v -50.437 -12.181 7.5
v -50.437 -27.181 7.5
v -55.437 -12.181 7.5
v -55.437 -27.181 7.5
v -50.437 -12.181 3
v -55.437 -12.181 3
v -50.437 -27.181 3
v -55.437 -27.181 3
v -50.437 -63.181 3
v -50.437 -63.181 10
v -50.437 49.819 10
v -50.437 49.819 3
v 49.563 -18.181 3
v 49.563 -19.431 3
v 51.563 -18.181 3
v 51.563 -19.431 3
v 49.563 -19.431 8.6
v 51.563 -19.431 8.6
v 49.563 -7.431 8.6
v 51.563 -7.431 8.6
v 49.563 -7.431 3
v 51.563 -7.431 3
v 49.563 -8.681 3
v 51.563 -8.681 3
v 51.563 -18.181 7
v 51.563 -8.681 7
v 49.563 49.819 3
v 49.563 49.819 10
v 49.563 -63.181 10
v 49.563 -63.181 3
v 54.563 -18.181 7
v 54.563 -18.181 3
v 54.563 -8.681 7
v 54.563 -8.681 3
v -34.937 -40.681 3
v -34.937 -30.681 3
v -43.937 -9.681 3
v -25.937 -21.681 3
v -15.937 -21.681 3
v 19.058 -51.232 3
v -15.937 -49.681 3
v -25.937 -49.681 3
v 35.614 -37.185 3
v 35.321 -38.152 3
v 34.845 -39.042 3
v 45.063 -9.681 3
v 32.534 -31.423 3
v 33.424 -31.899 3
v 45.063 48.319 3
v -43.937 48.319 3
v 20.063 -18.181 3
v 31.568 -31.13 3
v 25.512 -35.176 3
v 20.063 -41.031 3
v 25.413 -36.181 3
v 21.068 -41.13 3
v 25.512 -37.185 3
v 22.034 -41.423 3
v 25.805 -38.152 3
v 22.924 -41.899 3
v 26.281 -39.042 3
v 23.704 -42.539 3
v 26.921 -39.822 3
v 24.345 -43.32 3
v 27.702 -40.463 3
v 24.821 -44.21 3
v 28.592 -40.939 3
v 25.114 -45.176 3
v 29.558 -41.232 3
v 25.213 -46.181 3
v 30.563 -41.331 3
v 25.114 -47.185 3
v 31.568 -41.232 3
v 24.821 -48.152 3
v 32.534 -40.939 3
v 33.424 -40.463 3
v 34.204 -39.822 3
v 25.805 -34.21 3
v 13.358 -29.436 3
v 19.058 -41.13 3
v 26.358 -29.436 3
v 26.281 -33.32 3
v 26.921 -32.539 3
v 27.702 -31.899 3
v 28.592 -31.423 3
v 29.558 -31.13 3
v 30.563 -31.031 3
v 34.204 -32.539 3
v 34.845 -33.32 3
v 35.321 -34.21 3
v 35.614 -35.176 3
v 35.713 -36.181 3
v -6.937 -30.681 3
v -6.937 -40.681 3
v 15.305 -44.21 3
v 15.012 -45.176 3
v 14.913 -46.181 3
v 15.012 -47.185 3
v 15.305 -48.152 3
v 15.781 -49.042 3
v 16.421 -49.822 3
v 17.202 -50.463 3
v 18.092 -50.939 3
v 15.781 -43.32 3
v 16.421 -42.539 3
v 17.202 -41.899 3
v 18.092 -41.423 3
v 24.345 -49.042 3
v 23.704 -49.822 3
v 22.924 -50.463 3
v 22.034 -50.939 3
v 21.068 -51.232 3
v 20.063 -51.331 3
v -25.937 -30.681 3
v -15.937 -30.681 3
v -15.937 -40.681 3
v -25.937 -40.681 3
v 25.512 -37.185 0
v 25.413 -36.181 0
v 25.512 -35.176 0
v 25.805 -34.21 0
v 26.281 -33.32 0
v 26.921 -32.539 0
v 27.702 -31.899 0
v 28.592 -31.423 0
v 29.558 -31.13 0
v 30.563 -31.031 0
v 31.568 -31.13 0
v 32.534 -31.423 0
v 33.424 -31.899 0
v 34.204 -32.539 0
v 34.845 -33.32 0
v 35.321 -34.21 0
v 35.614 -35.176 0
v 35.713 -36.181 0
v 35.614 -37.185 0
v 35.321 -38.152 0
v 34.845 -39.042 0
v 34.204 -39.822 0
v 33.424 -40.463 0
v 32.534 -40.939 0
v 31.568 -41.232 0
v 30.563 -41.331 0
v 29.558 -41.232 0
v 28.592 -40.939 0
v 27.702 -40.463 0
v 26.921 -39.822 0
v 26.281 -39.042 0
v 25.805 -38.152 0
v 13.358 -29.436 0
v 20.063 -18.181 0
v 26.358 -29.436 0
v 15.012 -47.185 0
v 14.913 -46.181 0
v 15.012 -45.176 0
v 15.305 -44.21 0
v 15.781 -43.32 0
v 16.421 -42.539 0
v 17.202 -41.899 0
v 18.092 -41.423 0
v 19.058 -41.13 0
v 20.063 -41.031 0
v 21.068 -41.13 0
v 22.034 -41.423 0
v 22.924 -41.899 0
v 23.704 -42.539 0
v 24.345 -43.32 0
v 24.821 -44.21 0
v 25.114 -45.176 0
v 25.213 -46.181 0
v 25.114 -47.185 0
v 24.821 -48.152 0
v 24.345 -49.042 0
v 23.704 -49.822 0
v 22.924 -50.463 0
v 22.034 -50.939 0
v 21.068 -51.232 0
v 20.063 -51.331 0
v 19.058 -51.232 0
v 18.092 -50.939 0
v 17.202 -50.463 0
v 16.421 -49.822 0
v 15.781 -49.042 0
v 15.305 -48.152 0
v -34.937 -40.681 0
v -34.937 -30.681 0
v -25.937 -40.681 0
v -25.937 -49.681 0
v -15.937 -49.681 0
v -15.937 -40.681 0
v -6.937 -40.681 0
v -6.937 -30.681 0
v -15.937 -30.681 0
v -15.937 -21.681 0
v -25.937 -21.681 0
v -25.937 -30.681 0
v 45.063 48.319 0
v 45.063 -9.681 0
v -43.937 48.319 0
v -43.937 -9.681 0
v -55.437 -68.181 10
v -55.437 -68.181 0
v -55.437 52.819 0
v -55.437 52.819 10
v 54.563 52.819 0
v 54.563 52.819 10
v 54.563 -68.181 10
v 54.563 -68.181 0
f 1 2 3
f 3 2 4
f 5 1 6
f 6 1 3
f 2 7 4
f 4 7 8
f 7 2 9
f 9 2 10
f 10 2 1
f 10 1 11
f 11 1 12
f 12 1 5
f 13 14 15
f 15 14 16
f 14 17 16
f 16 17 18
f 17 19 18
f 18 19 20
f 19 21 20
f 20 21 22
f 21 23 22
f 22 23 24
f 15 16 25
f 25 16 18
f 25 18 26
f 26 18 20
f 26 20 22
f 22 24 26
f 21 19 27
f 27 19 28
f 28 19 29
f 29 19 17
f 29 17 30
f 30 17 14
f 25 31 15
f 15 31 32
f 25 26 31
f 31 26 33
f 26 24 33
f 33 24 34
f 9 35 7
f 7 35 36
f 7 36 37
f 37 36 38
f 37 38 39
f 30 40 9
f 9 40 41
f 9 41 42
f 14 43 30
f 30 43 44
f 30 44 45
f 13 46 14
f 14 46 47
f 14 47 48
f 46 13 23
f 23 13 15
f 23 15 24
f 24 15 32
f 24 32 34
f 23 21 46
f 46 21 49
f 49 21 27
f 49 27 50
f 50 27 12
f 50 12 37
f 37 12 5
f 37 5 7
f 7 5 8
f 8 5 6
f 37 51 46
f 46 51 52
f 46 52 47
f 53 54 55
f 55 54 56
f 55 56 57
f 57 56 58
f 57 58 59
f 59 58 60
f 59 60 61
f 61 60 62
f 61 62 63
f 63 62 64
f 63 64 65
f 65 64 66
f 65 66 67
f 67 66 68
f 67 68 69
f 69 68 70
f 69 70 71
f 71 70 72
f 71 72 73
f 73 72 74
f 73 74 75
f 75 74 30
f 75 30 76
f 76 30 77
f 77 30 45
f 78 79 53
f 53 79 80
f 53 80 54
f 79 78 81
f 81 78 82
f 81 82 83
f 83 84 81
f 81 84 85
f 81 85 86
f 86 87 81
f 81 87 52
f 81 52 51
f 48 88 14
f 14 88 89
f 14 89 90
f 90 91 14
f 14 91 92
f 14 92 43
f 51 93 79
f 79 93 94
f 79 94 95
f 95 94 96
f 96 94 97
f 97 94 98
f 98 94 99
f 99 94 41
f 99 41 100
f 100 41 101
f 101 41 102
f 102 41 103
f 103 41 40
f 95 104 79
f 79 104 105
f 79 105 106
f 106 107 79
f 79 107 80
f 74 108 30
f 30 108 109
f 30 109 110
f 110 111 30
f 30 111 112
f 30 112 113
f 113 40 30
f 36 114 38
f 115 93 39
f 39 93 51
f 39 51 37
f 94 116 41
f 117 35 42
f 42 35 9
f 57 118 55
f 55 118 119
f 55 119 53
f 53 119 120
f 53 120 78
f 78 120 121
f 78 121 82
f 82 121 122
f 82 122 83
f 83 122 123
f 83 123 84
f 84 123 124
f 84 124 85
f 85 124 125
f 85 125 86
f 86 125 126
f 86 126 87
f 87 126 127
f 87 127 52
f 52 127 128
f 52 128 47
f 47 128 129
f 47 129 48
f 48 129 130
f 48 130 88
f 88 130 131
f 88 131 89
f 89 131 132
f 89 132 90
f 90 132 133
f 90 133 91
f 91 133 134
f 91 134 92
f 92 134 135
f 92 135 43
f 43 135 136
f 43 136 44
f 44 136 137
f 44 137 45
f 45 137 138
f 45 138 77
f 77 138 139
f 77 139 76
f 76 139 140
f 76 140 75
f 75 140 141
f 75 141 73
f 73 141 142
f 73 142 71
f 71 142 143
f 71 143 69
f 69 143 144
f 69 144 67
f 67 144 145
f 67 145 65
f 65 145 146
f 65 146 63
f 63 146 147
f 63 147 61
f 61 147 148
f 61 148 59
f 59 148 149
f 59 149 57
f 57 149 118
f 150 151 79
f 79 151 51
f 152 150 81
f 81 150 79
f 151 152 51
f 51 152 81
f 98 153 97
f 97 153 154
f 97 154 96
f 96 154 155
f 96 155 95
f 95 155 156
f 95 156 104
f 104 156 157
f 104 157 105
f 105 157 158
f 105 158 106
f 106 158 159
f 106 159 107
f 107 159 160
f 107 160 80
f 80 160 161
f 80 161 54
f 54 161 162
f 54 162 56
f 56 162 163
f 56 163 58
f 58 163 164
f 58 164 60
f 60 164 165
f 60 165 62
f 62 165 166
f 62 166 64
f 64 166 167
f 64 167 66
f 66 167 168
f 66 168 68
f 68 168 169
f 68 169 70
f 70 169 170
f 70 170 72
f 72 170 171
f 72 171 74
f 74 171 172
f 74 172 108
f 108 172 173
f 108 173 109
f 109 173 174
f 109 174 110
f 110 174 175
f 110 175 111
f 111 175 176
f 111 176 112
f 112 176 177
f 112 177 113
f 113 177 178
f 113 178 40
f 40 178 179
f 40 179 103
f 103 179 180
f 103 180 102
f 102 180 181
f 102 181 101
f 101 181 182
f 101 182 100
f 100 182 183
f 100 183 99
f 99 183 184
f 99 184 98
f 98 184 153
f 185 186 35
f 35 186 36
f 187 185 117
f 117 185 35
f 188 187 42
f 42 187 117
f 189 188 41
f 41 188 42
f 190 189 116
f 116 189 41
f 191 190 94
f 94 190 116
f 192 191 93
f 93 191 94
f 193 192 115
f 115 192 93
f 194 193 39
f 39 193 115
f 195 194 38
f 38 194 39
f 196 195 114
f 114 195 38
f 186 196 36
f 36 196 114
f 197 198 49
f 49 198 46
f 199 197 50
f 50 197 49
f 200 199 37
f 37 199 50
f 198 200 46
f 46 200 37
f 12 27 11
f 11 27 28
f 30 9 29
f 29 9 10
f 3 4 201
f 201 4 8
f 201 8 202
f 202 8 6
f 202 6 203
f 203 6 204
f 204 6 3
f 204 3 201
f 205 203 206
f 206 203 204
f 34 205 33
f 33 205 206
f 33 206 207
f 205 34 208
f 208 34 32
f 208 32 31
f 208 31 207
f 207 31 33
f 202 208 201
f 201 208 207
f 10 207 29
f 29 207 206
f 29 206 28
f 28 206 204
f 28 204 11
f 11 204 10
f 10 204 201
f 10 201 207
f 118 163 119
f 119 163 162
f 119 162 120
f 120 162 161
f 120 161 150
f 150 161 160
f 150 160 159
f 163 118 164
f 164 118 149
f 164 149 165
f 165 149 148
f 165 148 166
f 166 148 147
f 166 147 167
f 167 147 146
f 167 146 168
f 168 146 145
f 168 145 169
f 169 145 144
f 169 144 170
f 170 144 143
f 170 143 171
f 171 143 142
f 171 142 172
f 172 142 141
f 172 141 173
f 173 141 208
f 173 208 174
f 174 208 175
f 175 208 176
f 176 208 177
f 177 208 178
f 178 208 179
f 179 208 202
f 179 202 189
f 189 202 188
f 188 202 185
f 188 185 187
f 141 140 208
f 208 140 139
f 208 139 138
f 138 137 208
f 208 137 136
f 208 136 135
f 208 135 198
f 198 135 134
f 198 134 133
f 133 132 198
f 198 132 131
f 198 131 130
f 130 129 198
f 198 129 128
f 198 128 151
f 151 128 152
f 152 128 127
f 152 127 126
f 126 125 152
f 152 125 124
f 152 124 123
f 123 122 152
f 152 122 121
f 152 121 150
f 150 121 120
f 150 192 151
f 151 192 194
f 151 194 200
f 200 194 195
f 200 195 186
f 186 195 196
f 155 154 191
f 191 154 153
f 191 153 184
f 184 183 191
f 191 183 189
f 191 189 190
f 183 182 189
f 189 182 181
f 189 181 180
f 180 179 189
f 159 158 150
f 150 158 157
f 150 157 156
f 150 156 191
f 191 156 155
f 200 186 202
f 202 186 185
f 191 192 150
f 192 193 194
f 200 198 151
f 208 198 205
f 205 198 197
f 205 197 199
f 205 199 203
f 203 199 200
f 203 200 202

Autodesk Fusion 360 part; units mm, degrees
sketch "Sketch1" plane through (0, 0, 0) normal (0, 0, 1) x (1, 0, 0)
  line L0 (-50.4372, 47.8193) -> (49.5628, 47.8193)
  line L1 (49.5628, 47.8193) -> (49.5628, -63.1807)
  line L2 (49.5628, -63.1807) -> (-50.4372, -63.1807)
  line L3 (-50.4372, -63.1807) -> (-50.4372, 47.8193)
  line L4 (-18.6372, -27.5802) -> (-23.0372, -27.5802)
  line L5 (-23.0372, -27.5802) -> (-23.0372, -24.2802)
  line L6 (-23.0372, -24.2802) -> (-18.6372, -24.2802)
  line L7 (-18.6372, -24.2802) -> (-18.6372, -27.5802)
  line L8 (17.6628, -24.0807) -> (22.0628, -24.0807)
  line L9 (22.0628, -24.0807) -> (22.0628, -27.3807)
  line L10 (22.0628, -27.3807) -> (17.6628, -27.3807)
  line L11 (17.6628, -27.3807) -> (17.6628, -24.0807)
  line L12 (17.8378, -44.4057) -> (22.2378, -44.4057)
  line L13 (22.2378, -44.4057) -> (22.2378, -47.7057)
  line L14 (22.2378, -47.7057) -> (17.8378, -47.7057)
  line L15 (17.8378, -47.7057) -> (17.8378, -44.4057)
  line L16 (27.9628, -34.1807) -> (32.3628, -34.1807)
  line L17 (32.3628, -34.1807) -> (32.3628, -37.4807)
  line L18 (32.3628, -37.4807) -> (27.9628, -37.4807)
  line L19 (27.9628, -37.4807) -> (27.9628, -34.1807)
  line L20 (-33.0372, -34.1807) -> (-28.6372, -34.1807)
  line L21 (-28.6372, -34.1807) -> (-28.6372, -37.4807)
  line L22 (-28.6372, -37.4807) -> (-33.0372, -37.4807)
  line L23 (-33.0372, -37.4807) -> (-33.0372, -34.1807)
  line L24 (-13.0372, -34.1807) -> (-8.6372, -34.1807)
  line L25 (-8.6372, -34.1807) -> (-8.6372, -37.4807)
  line L26 (-8.6372, -37.4807) -> (-13.0372, -37.4807)
  line L27 (-13.0372, -37.4807) -> (-13.0372, -34.1807)
  line L28 (-23.4439, -44.4057) -> (-19.0439, -44.4057)
  line L29 (-19.0439, -44.4057) -> (-19.0439, -47.7057)
  line L30 (-19.0439, -47.7057) -> (-23.4439, -47.7057)
  line L31 (-23.4439, -47.7057) -> (-23.4439, -44.4057)
  dimension "d1" = 100
  dimension "d2" = 111
  dimension "d3" = 4.4
  dimension "d4" = 3.3
  dimension "d5" = 4.4
  dimension "d6" = 3.3
  dimension "d7" = 4.4
  dimension "d8" = 3.3
  dimension "d9" = 4.4
  dimension "d10" = 3.3
  dimension "d11" = 4.4
  dimension "d12" = 3.3
  dimension "d13" = 4.4
  dimension "d14" = 3.3
  dimension "d15" = 4.4
  dimension "d16" = 3.3
  dimension "d17" = 17.4
  dimension "d21" = 25.7
  dimension "d22" = 25.7
  dimension "d23" = 15.475
  dimension "d24" = 15.475
  dimension "d25" = 25.7
  dimension "d26" = 27.5
  dimension "d27" = 17.2
  dimension "d28" = 15.6
  dimension "d29" = 8.656
  dimension "d30" = 8.656
  dimension "d31" = 8.656
  dimension "d32" = 35.8
  dimension "d33" = 27.325
sketch "top enclosure" plane through (0, 0, 0) normal (0, 0, 1) x (1, 0, 0)
  circle A0 centre (30.5628, -36.1807) radius 5.15
  line L0 (20.0628, -18.1807) -> (13.3583, -29.4363)
  line L1 (13.3583, -29.4363) -> (26.3583, -29.4363)
  line L2 (26.3583, -29.4363) -> (20.0628, -18.1807)
  circle A1 centre (20.0628, -46.1807) radius 5.15
  line L3 (-25.9372, -21.6807) -> (-15.9372, -21.6807)
  line L4 (-15.9372, -21.6807) -> (-15.9372, -30.6807)
  line L5 (-15.9372, -30.6807) -> (-6.9372, -30.6807)
  line L6 (-6.9372, -30.6807) -> (-6.9372, -40.6807)
  line L7 (-6.9372, -40.6807) -> (-15.9372, -40.6807)
  line L8 (-15.9372, -40.6807) -> (-15.9372, -49.6807)
  line L9 (-15.9372, -49.6807) -> (-25.9372, -49.6807)
  line L10 (-25.9372, -49.6807) -> (-25.9372, -40.6807)
  line L11 (-25.9372, -40.6807) -> (-34.9372, -40.6807)
  line L12 (-34.9372, -40.6807) -> (-34.9372, -30.6807)
  line L13 (-34.9372, -30.6807) -> (-25.9372, -30.6807)
  line L14 (-25.9372, -30.6807) -> (-25.9372, -21.6807)
  line L15 (-55.4372, 52.8193) -> (54.5628, 52.8193)
  line L16 (54.5628, 52.8193) -> (54.5628, -68.1807)
  line L17 (54.5628, -68.1807) -> (-55.4372, -68.1807)
  line L18 (-55.4372, -68.1807) -> (-55.4372, 52.8193)
  line L19 (-50.4372, -63.1807) -> (-50.4372, 47.8193)
  line L20 (49.5628, -63.1807) -> (-50.4372, -63.1807)
  line L21 (49.5628, 47.8193) -> (49.5628, -63.1807)
  line L22 (-50.4372, 47.8193) -> (49.5628, 47.8193)
  line L23 (-43.9372, 48.3193) -> (45.0628, 48.3193)
  line L24 (45.0628, 48.3193) -> (45.0628, -9.6807)
  line L25 (45.0628, -9.6807) -> (-43.9372, -9.6807)
  line L26 (-43.9372, -9.6807) -> (-43.9372, 48.3193)
  line L27 (-23.0372, -24.2802) -> (-18.6372, -24.2802)
  line L28 (-50.4372, -63.1807) -> (49.5628, -63.1807)
  line L29 (49.5628, -63.1807) -> (49.5628, 49.8193)
  line L30 (49.5628, 49.8193) -> (-50.4372, 49.8193)
  line L31 (-50.4372, 49.8193) -> (-50.4372, -63.1807)
  line L32 (44.9628, -13.6807) -> (49.5628, -13.6807)
  line L33 (49.5628, -13.6807) -> (49.5628, -23.1807)
  line L34 (49.5628, -23.1807) -> (44.9628, -23.1807)
  line L35 (44.9628, -23.1807) -> (44.9628, -13.6807)
  line L36 (-50.4372, -5.1807) -> (-36.8011, -5.1807)
  line L37 (-36.8011, -5.1807) -> (-36.8011, -27.1807)
  line L38 (-36.8011, -27.1807) -> (-50.4372, -27.1807)
  line L39 (-50.4372, -27.1807) -> (-50.4372, -5.1807)
  dimension "d34" = 60
  dimension "d35" = 10.3
  dimension "d36" = 10.3
  dimension "d37" = 10
  dimension "d38" = 10
  dimension "d39" = 10
  dimension "d40" = 10
  dimension "d41" = 9
  dimension "d42" = 9
  dimension "d43" = 9
  dimension "d44" = 9
  dimension "d45" = 9
  dimension "d46" = 9
  dimension "d47" = 13
  dimension "d49" = 11.2555
  dimension "d50" = 5
  dimension "d51" = 5
  dimension "d52" = 5
  dimension "d53" = 5
  dimension "d54" = 89
  dimension "d55" = 58
  dimension "d56" = 6.5
  dimension "d59" = 14.5995
  dimension "d60" = 45
  dimension "d61" = 27
  dimension "d62" = 17
  dimension "d63" = 13.5
  dimension "d64" = 15.5
  dimension "d65" = 19
  dimension "d66" = 29.5
  dimension "d68" = 113
  dimension "d69" = 100
  dimension "d72" = 40
  dimension "d73" = 9.5
  dimension "d74" = 4.6
  dimension "d75" = 36
  dimension "d77" = 22
extrude "Extrude6" add sketch "top enclosure" along normal blind 10 contours L15 L16 L17 L18
extrude "Extrude7" add sketch "top enclosure" along normal blind 3 contours L19 L20 L21 L22 L24 L25 L28 L29 L31 L32 L34 L35 L37 L38 | L19 L25 L26 L31 L36 L37 L38 L39 | L19 L22 L26 L31 L36 | L21 L29 L32 L33 L34 L35 | L22 L23 L24 L26 L29 L30 L31
sketch "Sketch3" plane through (54.5628, 0, 0) normal (1, 0, 0) x (0, 1, 0)
  line L0 (-68.1807, 0) -> (52.8193, 0)
  line L1 (52.8193, 0) -> (52.8193, 10)
  line L2 (52.8193, 10) -> (-68.1807, 10)
  line L3 (-68.1807, 10) -> (-68.1807, 0)
  line L4 (-18.1807, 7) -> (-8.6807, 7)
  line L5 (-8.6807, 7) -> (-8.6807, 3)
  line L6 (-8.6807, 3) -> (-18.1807, 3)
  line L7 (-18.1807, 3) -> (-18.1807, 7)
  line L8 (52.8193, 0) -> (-68.1807, 0)
  dimension "d91" = 50
  dimension "d92" = 3
  dimension "d93" = 9.5
  dimension "d94" = 4
extrude "Extrude8" cut sketch "Sketch3" against normal blind 10 contours L4 L5 L6 L7
sketch "Sketch4" plane through (49.5628, 0, 0) normal (-1, 0, 0) x (0, -1, 0)
  line L0 (8.6807, 3) -> (8.6807, 7)
  line L1 (8.6807, 7) -> (18.1807, 7)
  line L2 (18.1807, 7) -> (18.1807, 3)
  line L3 (18.1807, 3) -> (63.1807, 3)
  line L4 (63.1807, 3) -> (63.1807, 10)
  line L5 (63.1807, 10) -> (-49.8193, 10)
  line L6 (-49.8193, 10) -> (-49.8193, 3)
  line L7 (-49.8193, 3) -> (8.6807, 3)
  line L8 (7.4307, 3) -> (19.4307, 3)
  line L9 (19.4307, 3) -> (19.4307, 8.6)
  line L10 (19.4307, 8.6) -> (7.4307, 8.6)
  line L11 (7.4307, 8.6) -> (7.4307, 3)
  line L12 (8.6807, 7) -> (8.6807, 3)
  dimension "d97" = 12
  dimension "d98" = 5.6
  dimension "d99" = 1.25
extrude "Extrude9" cut sketch "Sketch4" against normal blind 2 contours L0 L1 L2 L3 L7 L8 L9 L10 L11 L12
sketch "Sketch5" plane through (-55.4372, 0, 0) normal (-1, 0, 0) x (0, -1, 0)
  line L0 (-52.8193, 0) -> (68.1807, 0)
  line L1 (68.1807, 0) -> (68.1807, 10)
  line L2 (68.1807, 10) -> (-52.8193, 10)
  line L3 (-52.8193, 10) -> (-52.8193, 0)
  line L4 (12.1807, 7.5) -> (27.1807, 7.5)
  line L5 (27.1807, 7.5) -> (27.1807, 3)
  line L6 (27.1807, 3) -> (12.1807, 3)
  line L7 (12.1807, 3) -> (12.1807, 7.5)
  dimension "d102" = 41
  dimension "d103" = 15
  dimension "d104" = 3
  dimension "d105" = 4.5
extrude "Extrude10" cut sketch "Sketch5" against normal blind 9 contours L4 L5 L6 L7
sketch "Sketch6" plane through (-50.4372, 0, 0) normal (1, 0, 0) x (0, 1, 0)
  line L0 (-27.1807, 3) -> (-27.1807, 7.5)
  line L1 (-27.1807, 7.5) -> (-12.1807, 7.5)
  line L2 (-12.1807, 7.5) -> (-12.1807, 3)
  line L3 (-12.1807, 3) -> (49.8193, 3)
  line L4 (49.8193, 3) -> (49.8193, 10)
  line L5 (49.8193, 10) -> (-63.1807, 10)
  line L6 (-63.1807, 10) -> (-63.1807, 3)
  line L7 (-63.1807, 3) -> (-27.1807, 3)
  line L8 (-28.6807, 3) -> (-10.6807, 3)
  line L9 (-10.6807, 3) -> (-10.6807, 9)
  line L10 (-10.6807, 9) -> (-28.6807, 9)
  line L11 (-28.6807, 9) -> (-28.6807, 3)
  dimension "d108" = 1.5
  dimension "d111" = 18
  dimension "d112" = 6
extrude "Extrude11" [suppressed]
